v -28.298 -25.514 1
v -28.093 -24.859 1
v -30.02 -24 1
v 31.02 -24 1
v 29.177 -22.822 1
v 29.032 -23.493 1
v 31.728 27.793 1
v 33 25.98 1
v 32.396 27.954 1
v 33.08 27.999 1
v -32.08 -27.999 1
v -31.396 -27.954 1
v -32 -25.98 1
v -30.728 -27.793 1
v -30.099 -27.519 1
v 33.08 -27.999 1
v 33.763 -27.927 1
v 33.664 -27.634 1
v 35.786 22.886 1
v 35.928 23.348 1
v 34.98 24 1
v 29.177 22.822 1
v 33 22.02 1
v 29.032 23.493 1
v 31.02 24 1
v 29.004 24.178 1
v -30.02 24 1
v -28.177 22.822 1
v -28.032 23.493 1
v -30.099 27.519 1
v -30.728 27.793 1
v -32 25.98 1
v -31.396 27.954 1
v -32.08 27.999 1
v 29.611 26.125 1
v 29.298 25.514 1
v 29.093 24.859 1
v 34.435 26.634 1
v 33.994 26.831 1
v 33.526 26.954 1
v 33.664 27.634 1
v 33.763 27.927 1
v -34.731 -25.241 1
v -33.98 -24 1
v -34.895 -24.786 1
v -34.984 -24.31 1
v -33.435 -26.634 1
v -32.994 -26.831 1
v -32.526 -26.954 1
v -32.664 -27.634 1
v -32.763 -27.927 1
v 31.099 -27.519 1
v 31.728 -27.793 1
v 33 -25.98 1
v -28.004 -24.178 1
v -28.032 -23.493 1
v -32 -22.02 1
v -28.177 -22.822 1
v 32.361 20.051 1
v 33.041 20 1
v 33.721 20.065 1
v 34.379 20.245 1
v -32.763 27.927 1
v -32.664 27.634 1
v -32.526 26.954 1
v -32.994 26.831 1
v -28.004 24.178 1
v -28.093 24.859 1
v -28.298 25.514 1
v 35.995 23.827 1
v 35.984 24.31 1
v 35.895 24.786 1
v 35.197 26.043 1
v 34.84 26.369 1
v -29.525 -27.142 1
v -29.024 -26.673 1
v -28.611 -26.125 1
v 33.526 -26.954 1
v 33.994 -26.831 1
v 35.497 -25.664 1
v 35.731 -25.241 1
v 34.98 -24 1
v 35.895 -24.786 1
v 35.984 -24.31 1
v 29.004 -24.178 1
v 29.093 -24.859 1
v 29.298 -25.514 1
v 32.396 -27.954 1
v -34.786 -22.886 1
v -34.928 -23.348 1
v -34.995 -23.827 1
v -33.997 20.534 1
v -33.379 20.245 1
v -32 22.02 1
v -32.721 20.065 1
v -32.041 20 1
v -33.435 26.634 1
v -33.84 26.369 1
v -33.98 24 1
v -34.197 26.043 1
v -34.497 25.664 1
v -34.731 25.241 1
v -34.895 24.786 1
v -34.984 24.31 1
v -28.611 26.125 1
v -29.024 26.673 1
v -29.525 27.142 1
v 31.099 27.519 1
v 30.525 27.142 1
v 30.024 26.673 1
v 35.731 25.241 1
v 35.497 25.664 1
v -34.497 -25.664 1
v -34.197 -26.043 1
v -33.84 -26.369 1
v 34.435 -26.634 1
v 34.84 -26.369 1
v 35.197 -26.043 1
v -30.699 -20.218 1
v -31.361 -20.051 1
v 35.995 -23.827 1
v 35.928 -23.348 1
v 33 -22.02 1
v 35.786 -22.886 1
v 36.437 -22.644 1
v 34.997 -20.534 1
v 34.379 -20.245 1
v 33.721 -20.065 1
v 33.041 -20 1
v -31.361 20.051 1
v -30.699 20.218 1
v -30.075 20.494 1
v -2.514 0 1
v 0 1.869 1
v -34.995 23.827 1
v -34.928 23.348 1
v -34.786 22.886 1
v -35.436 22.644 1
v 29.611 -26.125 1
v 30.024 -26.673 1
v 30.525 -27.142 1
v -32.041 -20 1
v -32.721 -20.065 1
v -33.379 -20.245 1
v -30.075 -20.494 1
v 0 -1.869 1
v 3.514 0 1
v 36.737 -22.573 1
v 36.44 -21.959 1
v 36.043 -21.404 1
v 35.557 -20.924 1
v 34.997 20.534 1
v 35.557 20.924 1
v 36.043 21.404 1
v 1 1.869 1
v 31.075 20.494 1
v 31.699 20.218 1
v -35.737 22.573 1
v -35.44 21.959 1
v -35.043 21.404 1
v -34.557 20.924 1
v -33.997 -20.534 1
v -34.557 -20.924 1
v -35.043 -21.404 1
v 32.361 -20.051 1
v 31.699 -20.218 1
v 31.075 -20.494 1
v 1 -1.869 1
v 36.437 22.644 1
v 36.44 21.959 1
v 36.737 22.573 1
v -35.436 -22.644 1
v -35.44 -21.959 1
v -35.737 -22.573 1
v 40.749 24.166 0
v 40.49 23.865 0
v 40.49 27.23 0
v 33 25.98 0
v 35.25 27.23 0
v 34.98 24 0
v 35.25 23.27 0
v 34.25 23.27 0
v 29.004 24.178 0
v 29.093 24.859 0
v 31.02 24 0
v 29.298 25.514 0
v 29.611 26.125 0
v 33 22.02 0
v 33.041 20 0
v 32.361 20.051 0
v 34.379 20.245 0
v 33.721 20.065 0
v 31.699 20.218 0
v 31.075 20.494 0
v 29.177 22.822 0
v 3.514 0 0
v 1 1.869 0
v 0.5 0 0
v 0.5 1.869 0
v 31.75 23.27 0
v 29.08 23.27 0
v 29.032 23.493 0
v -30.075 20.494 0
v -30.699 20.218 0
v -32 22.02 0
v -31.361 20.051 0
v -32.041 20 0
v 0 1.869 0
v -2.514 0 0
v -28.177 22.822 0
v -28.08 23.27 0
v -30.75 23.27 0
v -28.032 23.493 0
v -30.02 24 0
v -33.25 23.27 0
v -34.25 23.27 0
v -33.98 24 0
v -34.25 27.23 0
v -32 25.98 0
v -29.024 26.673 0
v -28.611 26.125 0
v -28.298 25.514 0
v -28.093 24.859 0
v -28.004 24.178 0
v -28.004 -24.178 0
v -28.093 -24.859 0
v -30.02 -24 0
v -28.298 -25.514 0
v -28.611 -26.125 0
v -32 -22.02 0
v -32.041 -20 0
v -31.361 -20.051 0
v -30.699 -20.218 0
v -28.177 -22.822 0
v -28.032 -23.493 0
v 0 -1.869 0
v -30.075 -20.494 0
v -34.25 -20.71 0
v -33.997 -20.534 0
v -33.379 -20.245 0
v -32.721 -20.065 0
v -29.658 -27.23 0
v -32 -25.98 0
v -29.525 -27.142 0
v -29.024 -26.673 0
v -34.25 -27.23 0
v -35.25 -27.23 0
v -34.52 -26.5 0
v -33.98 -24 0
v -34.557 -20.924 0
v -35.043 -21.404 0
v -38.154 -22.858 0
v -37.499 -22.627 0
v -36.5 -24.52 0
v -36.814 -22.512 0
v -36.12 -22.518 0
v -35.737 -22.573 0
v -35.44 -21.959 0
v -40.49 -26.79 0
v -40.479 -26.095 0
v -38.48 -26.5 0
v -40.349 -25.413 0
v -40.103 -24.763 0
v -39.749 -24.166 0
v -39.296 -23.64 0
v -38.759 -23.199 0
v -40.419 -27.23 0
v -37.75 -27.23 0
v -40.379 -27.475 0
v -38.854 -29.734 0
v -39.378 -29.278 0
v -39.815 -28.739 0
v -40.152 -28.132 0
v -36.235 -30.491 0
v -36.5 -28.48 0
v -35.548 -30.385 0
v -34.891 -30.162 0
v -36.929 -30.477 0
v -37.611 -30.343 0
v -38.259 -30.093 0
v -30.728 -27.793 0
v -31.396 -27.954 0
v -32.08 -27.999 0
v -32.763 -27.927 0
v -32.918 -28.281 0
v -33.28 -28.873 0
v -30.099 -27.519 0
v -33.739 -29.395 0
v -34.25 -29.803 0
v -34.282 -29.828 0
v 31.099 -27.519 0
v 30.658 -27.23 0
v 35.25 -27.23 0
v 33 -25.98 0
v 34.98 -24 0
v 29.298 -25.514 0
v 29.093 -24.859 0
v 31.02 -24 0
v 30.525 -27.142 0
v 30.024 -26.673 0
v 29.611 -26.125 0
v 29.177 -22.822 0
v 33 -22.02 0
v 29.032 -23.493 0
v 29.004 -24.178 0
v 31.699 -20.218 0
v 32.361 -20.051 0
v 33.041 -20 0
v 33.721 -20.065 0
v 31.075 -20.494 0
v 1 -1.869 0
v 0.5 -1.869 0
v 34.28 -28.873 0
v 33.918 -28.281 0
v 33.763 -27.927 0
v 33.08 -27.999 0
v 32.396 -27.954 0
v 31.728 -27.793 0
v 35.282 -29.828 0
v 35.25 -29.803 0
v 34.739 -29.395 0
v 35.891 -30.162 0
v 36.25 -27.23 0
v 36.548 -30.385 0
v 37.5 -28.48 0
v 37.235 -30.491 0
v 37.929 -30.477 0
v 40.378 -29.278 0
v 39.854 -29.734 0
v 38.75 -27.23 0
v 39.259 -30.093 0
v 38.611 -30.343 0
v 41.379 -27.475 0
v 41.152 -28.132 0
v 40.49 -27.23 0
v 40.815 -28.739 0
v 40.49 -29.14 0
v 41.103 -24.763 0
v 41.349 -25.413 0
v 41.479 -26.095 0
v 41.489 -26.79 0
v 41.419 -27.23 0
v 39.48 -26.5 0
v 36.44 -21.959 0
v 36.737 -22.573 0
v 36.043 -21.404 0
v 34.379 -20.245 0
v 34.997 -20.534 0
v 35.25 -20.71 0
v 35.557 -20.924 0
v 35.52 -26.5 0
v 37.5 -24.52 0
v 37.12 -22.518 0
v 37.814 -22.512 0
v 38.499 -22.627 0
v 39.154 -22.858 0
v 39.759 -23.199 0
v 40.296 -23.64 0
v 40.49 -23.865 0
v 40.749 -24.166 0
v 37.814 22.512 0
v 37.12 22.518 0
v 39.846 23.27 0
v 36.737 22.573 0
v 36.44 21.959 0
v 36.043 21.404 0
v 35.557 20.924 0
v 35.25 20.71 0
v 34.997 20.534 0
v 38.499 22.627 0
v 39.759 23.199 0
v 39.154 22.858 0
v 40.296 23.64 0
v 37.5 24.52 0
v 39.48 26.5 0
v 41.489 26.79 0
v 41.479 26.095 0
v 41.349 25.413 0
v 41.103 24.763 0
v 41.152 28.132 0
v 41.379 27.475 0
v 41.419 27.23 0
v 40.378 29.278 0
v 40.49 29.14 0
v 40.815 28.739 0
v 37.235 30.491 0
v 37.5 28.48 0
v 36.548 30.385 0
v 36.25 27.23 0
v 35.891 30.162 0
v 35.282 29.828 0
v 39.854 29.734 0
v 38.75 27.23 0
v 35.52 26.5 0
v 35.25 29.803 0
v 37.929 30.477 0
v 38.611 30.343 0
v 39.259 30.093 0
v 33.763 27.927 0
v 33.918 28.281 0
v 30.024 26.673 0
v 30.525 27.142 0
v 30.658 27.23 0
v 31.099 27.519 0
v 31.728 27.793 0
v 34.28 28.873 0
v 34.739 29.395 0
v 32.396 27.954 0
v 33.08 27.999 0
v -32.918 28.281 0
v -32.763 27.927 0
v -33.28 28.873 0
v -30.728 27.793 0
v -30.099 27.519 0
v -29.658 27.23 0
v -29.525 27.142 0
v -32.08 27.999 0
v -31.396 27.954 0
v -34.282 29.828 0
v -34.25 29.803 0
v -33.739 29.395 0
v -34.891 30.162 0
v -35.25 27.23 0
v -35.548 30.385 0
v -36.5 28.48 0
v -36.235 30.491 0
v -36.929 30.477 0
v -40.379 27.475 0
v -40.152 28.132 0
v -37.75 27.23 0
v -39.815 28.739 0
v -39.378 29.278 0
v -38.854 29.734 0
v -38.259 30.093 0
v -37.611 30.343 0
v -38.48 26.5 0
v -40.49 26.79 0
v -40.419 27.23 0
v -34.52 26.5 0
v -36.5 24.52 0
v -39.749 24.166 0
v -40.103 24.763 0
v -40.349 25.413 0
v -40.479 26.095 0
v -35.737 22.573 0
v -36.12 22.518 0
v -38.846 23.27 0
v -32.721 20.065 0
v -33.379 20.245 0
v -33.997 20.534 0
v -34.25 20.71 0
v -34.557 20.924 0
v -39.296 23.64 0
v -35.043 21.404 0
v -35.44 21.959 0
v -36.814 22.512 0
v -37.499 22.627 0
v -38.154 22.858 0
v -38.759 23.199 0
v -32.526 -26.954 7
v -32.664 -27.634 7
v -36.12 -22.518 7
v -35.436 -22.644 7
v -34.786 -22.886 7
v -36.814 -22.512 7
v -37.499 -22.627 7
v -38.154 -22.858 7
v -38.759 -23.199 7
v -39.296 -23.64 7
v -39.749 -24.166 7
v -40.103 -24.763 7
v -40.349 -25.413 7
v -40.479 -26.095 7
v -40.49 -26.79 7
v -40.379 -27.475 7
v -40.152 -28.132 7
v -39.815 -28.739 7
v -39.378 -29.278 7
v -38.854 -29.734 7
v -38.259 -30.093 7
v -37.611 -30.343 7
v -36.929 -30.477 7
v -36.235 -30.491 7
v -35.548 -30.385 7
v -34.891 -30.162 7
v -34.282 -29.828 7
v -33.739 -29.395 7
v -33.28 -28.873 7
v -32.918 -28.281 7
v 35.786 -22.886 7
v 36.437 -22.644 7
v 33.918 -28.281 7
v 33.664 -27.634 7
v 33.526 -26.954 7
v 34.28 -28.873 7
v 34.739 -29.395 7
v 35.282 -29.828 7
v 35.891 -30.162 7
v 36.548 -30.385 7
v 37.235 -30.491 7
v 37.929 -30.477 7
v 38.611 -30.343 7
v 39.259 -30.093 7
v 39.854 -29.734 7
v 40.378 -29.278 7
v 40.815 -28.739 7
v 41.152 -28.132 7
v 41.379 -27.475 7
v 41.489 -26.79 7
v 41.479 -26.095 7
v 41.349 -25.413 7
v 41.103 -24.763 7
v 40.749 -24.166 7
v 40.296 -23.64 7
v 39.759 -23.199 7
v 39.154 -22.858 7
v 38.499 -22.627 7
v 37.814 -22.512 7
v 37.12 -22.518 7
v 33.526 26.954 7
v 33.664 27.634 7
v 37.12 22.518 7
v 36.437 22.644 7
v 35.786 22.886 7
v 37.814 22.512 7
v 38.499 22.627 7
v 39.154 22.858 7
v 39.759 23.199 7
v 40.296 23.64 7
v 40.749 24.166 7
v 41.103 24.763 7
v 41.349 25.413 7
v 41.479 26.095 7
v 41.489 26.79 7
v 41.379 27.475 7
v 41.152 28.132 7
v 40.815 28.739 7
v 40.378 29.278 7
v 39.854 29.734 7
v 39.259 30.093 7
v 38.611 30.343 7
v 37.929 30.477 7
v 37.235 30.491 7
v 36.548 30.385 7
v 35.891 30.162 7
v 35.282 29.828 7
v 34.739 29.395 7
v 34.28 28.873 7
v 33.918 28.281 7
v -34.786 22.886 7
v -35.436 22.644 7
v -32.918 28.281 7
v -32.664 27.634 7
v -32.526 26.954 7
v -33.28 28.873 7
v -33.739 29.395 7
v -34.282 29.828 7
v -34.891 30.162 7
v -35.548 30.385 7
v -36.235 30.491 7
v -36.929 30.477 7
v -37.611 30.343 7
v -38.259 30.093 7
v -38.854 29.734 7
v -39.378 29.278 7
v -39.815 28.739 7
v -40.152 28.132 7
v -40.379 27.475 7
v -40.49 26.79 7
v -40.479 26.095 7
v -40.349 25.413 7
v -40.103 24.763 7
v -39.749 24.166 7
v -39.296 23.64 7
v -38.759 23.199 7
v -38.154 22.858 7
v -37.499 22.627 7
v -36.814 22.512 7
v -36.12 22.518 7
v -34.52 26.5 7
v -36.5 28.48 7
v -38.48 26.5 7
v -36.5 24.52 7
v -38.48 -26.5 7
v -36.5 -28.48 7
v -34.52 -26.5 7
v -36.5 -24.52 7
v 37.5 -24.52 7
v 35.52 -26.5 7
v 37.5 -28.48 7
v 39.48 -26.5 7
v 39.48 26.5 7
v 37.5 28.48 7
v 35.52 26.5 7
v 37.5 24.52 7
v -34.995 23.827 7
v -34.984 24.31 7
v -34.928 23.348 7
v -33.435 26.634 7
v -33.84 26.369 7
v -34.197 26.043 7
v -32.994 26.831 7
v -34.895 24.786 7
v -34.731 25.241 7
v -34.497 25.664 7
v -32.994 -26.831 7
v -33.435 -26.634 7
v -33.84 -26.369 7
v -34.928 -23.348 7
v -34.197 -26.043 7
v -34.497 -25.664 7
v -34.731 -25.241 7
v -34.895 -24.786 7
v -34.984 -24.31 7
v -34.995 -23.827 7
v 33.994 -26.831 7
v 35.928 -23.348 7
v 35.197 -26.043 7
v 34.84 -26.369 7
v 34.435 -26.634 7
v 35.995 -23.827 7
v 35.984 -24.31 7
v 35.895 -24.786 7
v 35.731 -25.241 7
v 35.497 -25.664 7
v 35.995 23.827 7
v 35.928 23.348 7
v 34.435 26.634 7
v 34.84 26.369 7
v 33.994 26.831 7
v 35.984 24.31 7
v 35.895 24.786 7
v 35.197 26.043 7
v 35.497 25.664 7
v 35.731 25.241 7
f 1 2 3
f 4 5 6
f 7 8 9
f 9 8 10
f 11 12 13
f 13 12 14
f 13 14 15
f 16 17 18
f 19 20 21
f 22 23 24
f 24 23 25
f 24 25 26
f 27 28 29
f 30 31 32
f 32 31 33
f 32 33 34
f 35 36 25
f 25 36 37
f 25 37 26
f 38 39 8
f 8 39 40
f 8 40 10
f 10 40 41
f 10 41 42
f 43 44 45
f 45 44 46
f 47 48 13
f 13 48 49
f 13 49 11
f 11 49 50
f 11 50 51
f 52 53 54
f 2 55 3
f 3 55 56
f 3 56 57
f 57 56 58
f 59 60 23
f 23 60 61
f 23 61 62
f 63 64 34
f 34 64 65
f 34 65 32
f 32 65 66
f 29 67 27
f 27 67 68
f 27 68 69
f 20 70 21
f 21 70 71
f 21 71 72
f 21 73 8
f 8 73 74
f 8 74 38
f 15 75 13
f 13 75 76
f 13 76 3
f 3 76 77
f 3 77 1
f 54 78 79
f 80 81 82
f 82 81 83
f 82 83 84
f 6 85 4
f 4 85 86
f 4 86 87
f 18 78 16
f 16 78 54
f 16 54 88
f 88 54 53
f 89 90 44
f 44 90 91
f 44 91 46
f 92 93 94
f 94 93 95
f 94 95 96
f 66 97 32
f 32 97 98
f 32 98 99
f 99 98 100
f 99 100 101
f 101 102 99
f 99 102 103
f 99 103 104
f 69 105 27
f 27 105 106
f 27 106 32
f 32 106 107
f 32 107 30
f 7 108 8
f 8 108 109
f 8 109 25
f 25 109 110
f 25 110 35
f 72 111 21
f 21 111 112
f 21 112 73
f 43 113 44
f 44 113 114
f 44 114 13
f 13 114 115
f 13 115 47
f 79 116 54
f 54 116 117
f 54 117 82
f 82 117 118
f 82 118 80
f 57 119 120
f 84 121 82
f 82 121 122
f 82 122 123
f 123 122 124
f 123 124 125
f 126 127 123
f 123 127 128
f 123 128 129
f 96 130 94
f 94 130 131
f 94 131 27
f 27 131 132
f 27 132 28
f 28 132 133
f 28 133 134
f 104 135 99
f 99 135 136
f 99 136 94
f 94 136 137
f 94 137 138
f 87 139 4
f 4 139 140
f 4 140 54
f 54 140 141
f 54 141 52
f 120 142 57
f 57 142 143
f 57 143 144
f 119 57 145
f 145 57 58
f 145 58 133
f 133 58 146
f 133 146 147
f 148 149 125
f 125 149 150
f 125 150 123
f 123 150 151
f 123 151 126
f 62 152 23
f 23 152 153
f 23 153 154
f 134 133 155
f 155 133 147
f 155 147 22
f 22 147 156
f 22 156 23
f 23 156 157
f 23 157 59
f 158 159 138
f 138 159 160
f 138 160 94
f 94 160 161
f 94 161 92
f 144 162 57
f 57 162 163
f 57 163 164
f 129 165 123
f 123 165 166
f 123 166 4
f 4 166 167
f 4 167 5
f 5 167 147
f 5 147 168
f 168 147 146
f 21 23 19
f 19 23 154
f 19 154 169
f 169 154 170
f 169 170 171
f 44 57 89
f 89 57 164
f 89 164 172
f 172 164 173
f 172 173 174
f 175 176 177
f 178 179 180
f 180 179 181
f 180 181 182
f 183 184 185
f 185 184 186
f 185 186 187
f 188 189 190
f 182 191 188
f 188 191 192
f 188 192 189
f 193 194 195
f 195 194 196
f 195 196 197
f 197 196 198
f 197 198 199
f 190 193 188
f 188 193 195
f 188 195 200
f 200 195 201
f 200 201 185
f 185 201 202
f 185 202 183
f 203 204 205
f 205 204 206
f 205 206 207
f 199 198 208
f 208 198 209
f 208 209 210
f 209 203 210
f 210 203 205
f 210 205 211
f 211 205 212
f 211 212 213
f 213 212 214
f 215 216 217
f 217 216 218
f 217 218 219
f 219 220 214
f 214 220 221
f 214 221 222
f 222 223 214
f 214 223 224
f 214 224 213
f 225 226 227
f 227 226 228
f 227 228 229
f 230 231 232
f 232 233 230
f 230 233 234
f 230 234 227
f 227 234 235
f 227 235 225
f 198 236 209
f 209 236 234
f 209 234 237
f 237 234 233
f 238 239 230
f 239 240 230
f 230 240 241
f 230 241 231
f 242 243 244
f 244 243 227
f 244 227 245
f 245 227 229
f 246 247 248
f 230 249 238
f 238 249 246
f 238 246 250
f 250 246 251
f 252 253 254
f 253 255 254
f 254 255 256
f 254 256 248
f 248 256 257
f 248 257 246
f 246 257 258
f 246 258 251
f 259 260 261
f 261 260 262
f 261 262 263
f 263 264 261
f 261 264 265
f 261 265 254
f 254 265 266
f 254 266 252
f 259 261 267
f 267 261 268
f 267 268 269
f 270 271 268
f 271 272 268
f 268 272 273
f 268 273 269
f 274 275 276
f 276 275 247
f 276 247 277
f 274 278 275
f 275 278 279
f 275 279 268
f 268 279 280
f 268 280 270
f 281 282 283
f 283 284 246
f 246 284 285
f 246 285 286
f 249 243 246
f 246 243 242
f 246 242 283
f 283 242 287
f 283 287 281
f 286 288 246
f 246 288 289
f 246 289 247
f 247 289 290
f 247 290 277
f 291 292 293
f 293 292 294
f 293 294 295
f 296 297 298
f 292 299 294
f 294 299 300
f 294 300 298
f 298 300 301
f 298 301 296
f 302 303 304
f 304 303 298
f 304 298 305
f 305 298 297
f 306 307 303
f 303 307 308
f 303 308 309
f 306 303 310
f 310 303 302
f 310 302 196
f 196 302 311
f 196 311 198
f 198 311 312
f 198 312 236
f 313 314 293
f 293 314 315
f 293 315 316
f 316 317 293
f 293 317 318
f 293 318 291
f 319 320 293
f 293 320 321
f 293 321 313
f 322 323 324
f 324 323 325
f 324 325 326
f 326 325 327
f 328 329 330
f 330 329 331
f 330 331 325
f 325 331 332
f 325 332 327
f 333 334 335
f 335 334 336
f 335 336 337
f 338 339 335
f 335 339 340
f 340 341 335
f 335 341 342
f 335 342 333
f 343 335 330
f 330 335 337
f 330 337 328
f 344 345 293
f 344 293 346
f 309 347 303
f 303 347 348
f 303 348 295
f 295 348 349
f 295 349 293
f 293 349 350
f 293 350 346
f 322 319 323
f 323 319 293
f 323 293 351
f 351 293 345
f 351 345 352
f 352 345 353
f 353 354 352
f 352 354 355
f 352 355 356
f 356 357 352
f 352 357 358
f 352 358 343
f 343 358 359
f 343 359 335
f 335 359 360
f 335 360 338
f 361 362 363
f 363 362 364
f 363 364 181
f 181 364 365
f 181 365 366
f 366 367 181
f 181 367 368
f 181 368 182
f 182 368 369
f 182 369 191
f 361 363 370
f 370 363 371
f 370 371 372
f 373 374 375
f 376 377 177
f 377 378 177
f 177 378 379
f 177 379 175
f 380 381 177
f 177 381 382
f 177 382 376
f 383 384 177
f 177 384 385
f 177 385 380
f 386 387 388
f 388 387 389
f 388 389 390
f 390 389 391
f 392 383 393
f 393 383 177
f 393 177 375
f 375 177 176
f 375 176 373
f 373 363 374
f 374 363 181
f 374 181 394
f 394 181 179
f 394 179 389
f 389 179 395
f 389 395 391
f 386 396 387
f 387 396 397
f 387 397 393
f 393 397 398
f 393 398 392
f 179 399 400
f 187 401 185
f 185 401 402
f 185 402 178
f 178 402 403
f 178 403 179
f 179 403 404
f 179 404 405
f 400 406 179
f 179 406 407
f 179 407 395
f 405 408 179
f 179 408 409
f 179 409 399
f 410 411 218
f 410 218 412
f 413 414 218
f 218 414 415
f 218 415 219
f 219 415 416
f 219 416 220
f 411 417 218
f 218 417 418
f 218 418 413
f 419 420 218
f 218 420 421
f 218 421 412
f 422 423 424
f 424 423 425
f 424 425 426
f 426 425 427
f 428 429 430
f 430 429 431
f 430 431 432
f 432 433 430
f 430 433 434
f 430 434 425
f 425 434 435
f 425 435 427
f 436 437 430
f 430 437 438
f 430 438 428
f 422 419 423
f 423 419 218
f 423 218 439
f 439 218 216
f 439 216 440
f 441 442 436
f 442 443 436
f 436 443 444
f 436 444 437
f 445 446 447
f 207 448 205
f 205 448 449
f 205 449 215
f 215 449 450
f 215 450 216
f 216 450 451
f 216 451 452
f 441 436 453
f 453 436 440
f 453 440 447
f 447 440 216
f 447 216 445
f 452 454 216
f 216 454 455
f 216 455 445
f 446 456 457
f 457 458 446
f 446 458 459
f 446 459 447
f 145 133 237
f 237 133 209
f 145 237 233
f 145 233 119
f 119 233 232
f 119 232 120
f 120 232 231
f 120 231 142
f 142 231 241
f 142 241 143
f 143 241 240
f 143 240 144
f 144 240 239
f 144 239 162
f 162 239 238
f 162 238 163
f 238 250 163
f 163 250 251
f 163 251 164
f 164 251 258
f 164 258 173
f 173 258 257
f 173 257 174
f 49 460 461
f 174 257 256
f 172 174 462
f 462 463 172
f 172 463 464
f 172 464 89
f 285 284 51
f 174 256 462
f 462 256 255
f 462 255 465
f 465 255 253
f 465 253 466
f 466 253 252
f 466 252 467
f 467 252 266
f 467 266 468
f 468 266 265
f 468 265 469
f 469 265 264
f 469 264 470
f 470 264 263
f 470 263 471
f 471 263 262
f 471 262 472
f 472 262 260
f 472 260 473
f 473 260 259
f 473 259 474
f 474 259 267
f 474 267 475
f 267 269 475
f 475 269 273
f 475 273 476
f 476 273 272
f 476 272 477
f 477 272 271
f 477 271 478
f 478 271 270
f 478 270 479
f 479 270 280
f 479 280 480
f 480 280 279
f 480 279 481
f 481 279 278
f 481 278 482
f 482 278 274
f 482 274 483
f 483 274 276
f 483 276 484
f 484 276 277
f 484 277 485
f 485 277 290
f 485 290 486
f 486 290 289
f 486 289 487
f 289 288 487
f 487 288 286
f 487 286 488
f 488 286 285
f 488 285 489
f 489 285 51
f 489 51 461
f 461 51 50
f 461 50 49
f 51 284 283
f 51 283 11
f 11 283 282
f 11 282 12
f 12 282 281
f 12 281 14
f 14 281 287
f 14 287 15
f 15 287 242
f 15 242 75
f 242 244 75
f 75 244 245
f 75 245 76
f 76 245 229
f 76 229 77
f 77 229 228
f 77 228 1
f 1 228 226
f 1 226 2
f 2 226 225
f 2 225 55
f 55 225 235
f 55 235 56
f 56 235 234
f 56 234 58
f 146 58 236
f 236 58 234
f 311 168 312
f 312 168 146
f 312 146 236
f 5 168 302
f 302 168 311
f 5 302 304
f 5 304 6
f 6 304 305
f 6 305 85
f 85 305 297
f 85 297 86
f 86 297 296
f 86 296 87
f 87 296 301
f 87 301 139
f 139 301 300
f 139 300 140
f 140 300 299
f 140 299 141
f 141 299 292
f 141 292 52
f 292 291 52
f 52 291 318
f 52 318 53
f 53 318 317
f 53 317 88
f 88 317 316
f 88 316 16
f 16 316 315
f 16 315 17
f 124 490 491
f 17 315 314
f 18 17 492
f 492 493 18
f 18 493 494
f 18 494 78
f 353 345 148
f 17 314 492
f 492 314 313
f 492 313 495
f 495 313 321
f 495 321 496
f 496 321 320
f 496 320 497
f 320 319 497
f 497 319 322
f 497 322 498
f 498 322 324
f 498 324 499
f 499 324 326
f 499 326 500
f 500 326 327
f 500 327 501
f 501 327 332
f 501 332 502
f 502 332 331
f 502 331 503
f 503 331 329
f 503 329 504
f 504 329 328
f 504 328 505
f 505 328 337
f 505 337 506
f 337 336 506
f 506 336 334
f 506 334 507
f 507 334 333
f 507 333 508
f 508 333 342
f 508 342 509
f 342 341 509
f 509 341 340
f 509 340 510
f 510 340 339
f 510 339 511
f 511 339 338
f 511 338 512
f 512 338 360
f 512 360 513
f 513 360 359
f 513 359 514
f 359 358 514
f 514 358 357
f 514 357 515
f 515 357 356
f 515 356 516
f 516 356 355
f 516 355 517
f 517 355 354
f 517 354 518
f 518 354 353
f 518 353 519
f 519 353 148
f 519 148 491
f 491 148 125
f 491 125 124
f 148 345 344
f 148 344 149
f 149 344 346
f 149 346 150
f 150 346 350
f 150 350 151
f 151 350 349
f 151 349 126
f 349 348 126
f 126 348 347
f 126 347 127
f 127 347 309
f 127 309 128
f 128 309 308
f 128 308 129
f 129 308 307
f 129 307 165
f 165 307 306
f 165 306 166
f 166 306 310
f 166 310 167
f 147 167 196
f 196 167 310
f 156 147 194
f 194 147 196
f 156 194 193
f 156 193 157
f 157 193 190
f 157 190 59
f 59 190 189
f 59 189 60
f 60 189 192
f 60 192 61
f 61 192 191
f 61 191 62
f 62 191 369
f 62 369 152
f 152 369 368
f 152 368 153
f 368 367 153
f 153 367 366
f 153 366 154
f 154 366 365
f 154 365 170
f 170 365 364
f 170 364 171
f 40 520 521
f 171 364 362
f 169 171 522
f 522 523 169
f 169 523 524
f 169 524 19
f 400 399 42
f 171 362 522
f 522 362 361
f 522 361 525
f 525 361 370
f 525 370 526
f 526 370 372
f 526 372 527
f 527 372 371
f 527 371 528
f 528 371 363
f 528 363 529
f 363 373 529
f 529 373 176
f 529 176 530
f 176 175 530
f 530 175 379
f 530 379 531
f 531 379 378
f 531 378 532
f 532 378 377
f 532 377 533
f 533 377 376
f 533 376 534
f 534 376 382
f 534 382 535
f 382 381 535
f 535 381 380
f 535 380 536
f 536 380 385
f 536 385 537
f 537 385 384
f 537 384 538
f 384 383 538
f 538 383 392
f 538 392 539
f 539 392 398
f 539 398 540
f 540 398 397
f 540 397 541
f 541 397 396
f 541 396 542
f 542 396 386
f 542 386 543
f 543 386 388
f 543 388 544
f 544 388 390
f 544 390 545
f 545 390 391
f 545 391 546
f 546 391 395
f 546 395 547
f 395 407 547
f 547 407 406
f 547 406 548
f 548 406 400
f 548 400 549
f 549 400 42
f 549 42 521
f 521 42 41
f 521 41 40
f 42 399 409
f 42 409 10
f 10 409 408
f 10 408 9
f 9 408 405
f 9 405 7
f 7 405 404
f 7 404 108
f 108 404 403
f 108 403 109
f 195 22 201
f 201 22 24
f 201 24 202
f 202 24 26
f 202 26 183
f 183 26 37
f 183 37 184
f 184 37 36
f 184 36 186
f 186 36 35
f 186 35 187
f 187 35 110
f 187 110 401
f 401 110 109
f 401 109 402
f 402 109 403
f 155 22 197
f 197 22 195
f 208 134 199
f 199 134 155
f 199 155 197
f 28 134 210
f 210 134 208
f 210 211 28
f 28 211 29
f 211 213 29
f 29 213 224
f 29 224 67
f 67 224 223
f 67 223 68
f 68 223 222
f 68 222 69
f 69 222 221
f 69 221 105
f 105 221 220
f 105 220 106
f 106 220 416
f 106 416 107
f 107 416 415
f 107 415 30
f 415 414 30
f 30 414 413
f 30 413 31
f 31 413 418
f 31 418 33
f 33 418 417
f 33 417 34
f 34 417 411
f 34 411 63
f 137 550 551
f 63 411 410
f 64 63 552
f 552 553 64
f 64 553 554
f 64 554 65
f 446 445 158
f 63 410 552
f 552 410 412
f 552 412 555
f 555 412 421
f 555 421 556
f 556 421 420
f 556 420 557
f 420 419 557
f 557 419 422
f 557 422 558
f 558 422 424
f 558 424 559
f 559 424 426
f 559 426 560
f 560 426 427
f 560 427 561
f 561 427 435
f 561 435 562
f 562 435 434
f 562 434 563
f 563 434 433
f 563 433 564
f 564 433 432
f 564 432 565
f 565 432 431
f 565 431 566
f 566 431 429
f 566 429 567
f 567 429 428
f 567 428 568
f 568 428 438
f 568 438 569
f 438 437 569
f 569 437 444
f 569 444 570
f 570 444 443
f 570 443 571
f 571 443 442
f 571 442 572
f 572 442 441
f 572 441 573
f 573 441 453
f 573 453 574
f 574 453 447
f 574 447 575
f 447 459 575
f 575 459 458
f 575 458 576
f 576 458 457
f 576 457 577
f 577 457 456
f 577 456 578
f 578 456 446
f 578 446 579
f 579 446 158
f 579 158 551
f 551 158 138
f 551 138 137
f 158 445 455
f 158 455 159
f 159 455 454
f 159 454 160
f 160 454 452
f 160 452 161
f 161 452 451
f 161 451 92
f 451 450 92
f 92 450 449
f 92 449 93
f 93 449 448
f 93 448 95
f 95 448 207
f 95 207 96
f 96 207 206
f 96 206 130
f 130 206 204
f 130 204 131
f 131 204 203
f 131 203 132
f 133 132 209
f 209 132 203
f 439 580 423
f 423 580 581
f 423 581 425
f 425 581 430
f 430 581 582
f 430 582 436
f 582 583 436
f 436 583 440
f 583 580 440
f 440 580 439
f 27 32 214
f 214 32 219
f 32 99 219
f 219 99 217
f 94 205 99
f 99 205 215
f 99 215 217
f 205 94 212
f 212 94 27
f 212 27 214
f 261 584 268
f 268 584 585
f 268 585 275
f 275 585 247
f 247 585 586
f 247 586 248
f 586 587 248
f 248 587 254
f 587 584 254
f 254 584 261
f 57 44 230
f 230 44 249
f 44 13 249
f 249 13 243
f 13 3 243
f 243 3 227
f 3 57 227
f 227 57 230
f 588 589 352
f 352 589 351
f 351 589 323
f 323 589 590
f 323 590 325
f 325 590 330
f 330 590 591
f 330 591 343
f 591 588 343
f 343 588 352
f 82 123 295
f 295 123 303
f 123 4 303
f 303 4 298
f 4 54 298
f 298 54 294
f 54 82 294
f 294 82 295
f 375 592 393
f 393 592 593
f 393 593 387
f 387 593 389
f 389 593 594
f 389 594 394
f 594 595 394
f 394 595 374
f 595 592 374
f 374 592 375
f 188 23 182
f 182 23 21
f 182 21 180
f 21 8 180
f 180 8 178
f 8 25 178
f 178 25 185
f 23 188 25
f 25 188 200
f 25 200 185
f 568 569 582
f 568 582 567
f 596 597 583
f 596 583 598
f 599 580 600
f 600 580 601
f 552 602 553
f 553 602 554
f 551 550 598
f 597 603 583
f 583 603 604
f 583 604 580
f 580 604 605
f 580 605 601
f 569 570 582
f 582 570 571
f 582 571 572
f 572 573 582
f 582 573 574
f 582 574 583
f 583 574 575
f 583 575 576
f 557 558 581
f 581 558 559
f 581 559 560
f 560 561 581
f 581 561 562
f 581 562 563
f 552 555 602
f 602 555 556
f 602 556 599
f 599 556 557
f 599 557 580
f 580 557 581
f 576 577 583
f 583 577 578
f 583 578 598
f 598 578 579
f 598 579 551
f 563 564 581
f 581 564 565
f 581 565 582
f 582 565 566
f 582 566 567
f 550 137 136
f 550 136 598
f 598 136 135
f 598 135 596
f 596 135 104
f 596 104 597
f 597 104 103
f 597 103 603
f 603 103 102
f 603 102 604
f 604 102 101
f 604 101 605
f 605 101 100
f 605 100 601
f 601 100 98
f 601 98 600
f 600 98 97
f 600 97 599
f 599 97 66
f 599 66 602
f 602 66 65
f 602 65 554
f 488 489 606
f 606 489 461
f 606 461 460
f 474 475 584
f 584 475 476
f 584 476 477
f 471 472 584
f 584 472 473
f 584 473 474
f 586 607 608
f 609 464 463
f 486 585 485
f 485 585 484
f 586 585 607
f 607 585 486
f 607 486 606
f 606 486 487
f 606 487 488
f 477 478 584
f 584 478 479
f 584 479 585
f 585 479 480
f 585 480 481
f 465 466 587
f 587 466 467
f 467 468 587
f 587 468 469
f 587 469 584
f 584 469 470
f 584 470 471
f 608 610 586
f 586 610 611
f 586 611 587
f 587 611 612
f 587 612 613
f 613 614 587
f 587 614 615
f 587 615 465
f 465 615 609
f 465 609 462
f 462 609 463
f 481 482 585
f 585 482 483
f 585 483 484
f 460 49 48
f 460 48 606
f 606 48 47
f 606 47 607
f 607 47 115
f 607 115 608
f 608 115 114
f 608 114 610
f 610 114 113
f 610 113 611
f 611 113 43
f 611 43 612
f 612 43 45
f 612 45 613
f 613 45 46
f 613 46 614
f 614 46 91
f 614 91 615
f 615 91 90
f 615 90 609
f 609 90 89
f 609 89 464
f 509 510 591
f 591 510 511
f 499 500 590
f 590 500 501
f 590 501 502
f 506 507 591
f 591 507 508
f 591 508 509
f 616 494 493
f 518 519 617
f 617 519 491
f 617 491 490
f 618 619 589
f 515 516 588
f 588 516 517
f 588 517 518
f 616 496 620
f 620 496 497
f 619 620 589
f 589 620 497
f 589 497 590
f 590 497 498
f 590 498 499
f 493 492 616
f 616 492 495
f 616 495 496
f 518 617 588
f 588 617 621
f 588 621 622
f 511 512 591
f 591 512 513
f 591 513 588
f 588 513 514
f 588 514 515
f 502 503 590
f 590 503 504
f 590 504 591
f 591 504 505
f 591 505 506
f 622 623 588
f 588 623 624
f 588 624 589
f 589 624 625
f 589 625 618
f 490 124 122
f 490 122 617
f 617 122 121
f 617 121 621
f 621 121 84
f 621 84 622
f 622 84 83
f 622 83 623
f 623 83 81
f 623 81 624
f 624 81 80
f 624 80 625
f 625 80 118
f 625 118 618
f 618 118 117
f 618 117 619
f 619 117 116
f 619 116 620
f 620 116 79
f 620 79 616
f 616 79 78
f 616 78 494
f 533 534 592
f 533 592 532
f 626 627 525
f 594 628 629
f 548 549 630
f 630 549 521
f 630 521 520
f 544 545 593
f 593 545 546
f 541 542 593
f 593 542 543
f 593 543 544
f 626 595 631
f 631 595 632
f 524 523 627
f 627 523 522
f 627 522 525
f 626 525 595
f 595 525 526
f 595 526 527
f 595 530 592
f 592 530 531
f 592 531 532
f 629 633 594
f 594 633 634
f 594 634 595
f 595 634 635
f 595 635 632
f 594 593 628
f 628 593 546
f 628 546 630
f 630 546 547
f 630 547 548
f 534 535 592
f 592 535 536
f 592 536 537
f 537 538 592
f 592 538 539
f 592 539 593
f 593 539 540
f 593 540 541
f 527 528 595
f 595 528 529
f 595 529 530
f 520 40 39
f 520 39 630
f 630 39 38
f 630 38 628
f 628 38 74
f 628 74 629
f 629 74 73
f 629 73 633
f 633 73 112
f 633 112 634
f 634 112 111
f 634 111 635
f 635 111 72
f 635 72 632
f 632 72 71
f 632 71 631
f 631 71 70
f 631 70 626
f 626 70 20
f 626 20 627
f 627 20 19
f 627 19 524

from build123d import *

# Parameters (mm, degrees)
RESSALTO_EXTRUS_O1_DEPTH = 1
RESSALTO_EXTRUS_O3_DEPTH = 6


with BuildPart() as part:
    # Esboço1 → Ressalto-extrusão1 (new body)
    with BuildSketch(Plane.XY):
        with BuildLine():
            Line((0, 1.869246597), (-27.993590125, 22.6849931))
            Line((-27.993590125, 22.6849931), (-28.177477369, 22.821729769))
            ThreePointArc((-28.177477369, 22.821729769), (-29.024277982, 26.673027959), (-32.763028277, 27.926549102))
            ThreePointArc((-32.763028277, 27.926549102), (-39.996629104, 28.442571725), (-35.736971723, 22.573450898))
            ThreePointArc((-35.736971723, 22.573450898), (-33.37897048, 20.245211003), (-30.074575689, 20.493899428))
            Line((-30.074575689, 20.493899428), (-29.783698424, 20.277606077))
            Line((-29.783698424, 20.277606077), (-2.513814389, 0))
            Line((-2.513814389, 0), (-29.783698424, -20.277606077))
            Line((-29.783698424, -20.277606077), (-30.074575689, -20.493899428))
            ThreePointArc((-30.074575689, -20.493899428), (-33.37897048, -20.245211003), (-35.736971723, -22.573450898))
            ThreePointArc((-35.736971723, -22.573450898), (-39.996629104, -28.442571725), (-32.763028277, -27.926549102))
            ThreePointArc((-32.763028277, -27.926549102), (-29.024277982, -26.673027959), (-28.177477369, -22.821729769))
            Line((-28.177477369, -22.821729769), (-27.993590125, -22.6849931))
            Line((-27.993590125, -22.6849931), (0, -1.869246597))
            Line((0, -1.869246597), (1, -1.869246597))
            Line((1, -1.869246597), (28.993590125, -22.6849931))
            Line((28.993590125, -22.6849931), (29.177477369, -22.821729769))
            ThreePointArc((29.177477369, -22.821729769), (30.024277982, -26.673027959), (33.763028277, -27.926549102))
            ThreePointArc((33.763028277, -27.926549102), (40.996629104, -28.442571725), (36.736971723, -22.573450898))
            ThreePointArc((36.736971723, -22.573450898), (34.37897048, -20.245211003), (31.074575689, -20.493899428))
            Line((31.074575689, -20.493899428), (30.783698424, -20.277606077))
            Line((30.783698424, -20.277606077), (3.513814389, 0))
            Line((3.513814389, 0), (30.783698424, 20.277606077))
            Line((30.783698424, 20.277606077), (31.074575689, 20.493899428))
            ThreePointArc((31.074575689, 20.493899428), (34.37897048, 20.245211003), (36.736971723, 22.573450898))
            ThreePointArc((36.736971723, 22.573450898), (40.996629104, 28.442571725), (33.763028277, 27.926549102))
            ThreePointArc((33.763028277, 27.926549102), (30.024277982, 26.673027959), (29.177477369, 22.821729769))
            Line((29.177477369, 22.821729769), (28.993590125, 22.6849931))
            Line((28.993590125, 22.6849931), (1, 1.869246597))
            Line((1, 1.869246597), (0, 1.869246597))
        make_face()
        Polygon((-38.479898987, 26.5), (-36.5, 28.479898987), (-34.520101013, 26.5), (-36.5, 24.520101013), align=None, mode=Mode.SUBTRACT)
        Polygon((-33.979898987, 24), (-32, 25.979898987), (-30.020101013, 24), (-32, 22.020101013), align=None, mode=Mode.SUBTRACT)
        Polygon((-36.5, -28.479898987), (-34.520101013, -26.5), (-36.5, -24.520101013), (-38.479898987, -26.5), align=None, mode=Mode.SUBTRACT)
        Polygon((-32, -25.979898987), (-30.020101013, -24), (-32, -22.020101013), (-33.979898987, -24), align=None, mode=Mode.SUBTRACT)
        Polygon((39.479898987, -26.5), (37.5, -28.479898987), (35.520101013, -26.5), (37.5, -24.520101013), align=None, mode=Mode.SUBTRACT)
        Polygon((34.979898987, -24), (33, -25.979898987), (31.020101013, -24), (33, -22.020101013), align=None, mode=Mode.SUBTRACT)
        Polygon((37.5, 28.479898987), (35.520101013, 26.5), (37.5, 24.520101013), (39.479898987, 26.5), align=None, mode=Mode.SUBTRACT)
        Polygon((33, 25.979898987), (31.020101013, 24), (33, 22.020101013), (34.979898987, 24), align=None, mode=Mode.SUBTRACT)
    extrude(amount=RESSALTO_EXTRUS_O1_DEPTH)

    # Esboço3 → Ressalto-extrusão3 (add)
    # profile 1 of 4: a face of its own
    with BuildSketch(Plane.XY.offset(1)):
        with BuildLine():
            ThreePointArc((-32.525798154, 26.953563323), (-39.996629104, 28.442571725), (-34.785522601, 22.886059319))
            ThreePointArc((-34.785522601, 22.886059319), (-34.622471828, 25.456928794), (-32.525798154, 26.953563323))
        make_face()
        Polygon((-38.479898987, 26.5), (-36.5, 24.520101013), (-34.520101013, 26.5), (-36.5, 28.479898987), align=None, mode=Mode.SUBTRACT)
    # profile 2 of 4: a face of its own
    with BuildSketch(Plane.XY.offset(1)):
        with BuildLine():
            ThreePointArc((-32.525798154, -26.953563323), (-34.622471828, -25.456928794), (-34.785522601, -22.886059319))
            ThreePointArc((-34.785522601, -22.886059319), (-39.996629104, -28.442571725), (-32.525798154, -26.953563323))
        make_face()
        Polygon((-36.5, -24.520101013), (-34.520101013, -26.5), (-36.5, -28.479898987), (-38.479898987, -26.5), align=None, mode=Mode.SUBTRACT)
    # profile 3 of 4: a face of its own
    with BuildSketch(Plane.XY.offset(1)):
        with BuildLine():
            ThreePointArc((33.525798154, -26.953563323), (40.996629104, -28.442571725), (35.785522601, -22.886059319))
            ThreePointArc((35.785522601, -22.886059319), (35.622471828, -25.456928794), (33.525798154, -26.953563323))
        make_face()
        Polygon((39.479898987, -26.5), (37.5, -24.520101013), (35.520101013, -26.5), (37.5, -28.479898987), align=None, mode=Mode.SUBTRACT)
    # profile 4 of 4: a face of its own
    with BuildSketch(Plane.XY.offset(1)):
        with BuildLine():
            ThreePointArc((33.525798154, 26.953563323), (35.622471828, 25.456928794), (35.785522601, 22.886059319))
            ThreePointArc((35.785522601, 22.886059319), (40.996629104, 28.442571725), (33.525798154, 26.953563323))
        make_face()
        Polygon((37.5, 24.520101013), (35.520101013, 26.5), (37.5, 28.479898987), (39.479898987, 26.5), align=None, mode=Mode.SUBTRACT)
    extrude(amount=RESSALTO_EXTRUS_O3_DEPTH)


solid = part.part
